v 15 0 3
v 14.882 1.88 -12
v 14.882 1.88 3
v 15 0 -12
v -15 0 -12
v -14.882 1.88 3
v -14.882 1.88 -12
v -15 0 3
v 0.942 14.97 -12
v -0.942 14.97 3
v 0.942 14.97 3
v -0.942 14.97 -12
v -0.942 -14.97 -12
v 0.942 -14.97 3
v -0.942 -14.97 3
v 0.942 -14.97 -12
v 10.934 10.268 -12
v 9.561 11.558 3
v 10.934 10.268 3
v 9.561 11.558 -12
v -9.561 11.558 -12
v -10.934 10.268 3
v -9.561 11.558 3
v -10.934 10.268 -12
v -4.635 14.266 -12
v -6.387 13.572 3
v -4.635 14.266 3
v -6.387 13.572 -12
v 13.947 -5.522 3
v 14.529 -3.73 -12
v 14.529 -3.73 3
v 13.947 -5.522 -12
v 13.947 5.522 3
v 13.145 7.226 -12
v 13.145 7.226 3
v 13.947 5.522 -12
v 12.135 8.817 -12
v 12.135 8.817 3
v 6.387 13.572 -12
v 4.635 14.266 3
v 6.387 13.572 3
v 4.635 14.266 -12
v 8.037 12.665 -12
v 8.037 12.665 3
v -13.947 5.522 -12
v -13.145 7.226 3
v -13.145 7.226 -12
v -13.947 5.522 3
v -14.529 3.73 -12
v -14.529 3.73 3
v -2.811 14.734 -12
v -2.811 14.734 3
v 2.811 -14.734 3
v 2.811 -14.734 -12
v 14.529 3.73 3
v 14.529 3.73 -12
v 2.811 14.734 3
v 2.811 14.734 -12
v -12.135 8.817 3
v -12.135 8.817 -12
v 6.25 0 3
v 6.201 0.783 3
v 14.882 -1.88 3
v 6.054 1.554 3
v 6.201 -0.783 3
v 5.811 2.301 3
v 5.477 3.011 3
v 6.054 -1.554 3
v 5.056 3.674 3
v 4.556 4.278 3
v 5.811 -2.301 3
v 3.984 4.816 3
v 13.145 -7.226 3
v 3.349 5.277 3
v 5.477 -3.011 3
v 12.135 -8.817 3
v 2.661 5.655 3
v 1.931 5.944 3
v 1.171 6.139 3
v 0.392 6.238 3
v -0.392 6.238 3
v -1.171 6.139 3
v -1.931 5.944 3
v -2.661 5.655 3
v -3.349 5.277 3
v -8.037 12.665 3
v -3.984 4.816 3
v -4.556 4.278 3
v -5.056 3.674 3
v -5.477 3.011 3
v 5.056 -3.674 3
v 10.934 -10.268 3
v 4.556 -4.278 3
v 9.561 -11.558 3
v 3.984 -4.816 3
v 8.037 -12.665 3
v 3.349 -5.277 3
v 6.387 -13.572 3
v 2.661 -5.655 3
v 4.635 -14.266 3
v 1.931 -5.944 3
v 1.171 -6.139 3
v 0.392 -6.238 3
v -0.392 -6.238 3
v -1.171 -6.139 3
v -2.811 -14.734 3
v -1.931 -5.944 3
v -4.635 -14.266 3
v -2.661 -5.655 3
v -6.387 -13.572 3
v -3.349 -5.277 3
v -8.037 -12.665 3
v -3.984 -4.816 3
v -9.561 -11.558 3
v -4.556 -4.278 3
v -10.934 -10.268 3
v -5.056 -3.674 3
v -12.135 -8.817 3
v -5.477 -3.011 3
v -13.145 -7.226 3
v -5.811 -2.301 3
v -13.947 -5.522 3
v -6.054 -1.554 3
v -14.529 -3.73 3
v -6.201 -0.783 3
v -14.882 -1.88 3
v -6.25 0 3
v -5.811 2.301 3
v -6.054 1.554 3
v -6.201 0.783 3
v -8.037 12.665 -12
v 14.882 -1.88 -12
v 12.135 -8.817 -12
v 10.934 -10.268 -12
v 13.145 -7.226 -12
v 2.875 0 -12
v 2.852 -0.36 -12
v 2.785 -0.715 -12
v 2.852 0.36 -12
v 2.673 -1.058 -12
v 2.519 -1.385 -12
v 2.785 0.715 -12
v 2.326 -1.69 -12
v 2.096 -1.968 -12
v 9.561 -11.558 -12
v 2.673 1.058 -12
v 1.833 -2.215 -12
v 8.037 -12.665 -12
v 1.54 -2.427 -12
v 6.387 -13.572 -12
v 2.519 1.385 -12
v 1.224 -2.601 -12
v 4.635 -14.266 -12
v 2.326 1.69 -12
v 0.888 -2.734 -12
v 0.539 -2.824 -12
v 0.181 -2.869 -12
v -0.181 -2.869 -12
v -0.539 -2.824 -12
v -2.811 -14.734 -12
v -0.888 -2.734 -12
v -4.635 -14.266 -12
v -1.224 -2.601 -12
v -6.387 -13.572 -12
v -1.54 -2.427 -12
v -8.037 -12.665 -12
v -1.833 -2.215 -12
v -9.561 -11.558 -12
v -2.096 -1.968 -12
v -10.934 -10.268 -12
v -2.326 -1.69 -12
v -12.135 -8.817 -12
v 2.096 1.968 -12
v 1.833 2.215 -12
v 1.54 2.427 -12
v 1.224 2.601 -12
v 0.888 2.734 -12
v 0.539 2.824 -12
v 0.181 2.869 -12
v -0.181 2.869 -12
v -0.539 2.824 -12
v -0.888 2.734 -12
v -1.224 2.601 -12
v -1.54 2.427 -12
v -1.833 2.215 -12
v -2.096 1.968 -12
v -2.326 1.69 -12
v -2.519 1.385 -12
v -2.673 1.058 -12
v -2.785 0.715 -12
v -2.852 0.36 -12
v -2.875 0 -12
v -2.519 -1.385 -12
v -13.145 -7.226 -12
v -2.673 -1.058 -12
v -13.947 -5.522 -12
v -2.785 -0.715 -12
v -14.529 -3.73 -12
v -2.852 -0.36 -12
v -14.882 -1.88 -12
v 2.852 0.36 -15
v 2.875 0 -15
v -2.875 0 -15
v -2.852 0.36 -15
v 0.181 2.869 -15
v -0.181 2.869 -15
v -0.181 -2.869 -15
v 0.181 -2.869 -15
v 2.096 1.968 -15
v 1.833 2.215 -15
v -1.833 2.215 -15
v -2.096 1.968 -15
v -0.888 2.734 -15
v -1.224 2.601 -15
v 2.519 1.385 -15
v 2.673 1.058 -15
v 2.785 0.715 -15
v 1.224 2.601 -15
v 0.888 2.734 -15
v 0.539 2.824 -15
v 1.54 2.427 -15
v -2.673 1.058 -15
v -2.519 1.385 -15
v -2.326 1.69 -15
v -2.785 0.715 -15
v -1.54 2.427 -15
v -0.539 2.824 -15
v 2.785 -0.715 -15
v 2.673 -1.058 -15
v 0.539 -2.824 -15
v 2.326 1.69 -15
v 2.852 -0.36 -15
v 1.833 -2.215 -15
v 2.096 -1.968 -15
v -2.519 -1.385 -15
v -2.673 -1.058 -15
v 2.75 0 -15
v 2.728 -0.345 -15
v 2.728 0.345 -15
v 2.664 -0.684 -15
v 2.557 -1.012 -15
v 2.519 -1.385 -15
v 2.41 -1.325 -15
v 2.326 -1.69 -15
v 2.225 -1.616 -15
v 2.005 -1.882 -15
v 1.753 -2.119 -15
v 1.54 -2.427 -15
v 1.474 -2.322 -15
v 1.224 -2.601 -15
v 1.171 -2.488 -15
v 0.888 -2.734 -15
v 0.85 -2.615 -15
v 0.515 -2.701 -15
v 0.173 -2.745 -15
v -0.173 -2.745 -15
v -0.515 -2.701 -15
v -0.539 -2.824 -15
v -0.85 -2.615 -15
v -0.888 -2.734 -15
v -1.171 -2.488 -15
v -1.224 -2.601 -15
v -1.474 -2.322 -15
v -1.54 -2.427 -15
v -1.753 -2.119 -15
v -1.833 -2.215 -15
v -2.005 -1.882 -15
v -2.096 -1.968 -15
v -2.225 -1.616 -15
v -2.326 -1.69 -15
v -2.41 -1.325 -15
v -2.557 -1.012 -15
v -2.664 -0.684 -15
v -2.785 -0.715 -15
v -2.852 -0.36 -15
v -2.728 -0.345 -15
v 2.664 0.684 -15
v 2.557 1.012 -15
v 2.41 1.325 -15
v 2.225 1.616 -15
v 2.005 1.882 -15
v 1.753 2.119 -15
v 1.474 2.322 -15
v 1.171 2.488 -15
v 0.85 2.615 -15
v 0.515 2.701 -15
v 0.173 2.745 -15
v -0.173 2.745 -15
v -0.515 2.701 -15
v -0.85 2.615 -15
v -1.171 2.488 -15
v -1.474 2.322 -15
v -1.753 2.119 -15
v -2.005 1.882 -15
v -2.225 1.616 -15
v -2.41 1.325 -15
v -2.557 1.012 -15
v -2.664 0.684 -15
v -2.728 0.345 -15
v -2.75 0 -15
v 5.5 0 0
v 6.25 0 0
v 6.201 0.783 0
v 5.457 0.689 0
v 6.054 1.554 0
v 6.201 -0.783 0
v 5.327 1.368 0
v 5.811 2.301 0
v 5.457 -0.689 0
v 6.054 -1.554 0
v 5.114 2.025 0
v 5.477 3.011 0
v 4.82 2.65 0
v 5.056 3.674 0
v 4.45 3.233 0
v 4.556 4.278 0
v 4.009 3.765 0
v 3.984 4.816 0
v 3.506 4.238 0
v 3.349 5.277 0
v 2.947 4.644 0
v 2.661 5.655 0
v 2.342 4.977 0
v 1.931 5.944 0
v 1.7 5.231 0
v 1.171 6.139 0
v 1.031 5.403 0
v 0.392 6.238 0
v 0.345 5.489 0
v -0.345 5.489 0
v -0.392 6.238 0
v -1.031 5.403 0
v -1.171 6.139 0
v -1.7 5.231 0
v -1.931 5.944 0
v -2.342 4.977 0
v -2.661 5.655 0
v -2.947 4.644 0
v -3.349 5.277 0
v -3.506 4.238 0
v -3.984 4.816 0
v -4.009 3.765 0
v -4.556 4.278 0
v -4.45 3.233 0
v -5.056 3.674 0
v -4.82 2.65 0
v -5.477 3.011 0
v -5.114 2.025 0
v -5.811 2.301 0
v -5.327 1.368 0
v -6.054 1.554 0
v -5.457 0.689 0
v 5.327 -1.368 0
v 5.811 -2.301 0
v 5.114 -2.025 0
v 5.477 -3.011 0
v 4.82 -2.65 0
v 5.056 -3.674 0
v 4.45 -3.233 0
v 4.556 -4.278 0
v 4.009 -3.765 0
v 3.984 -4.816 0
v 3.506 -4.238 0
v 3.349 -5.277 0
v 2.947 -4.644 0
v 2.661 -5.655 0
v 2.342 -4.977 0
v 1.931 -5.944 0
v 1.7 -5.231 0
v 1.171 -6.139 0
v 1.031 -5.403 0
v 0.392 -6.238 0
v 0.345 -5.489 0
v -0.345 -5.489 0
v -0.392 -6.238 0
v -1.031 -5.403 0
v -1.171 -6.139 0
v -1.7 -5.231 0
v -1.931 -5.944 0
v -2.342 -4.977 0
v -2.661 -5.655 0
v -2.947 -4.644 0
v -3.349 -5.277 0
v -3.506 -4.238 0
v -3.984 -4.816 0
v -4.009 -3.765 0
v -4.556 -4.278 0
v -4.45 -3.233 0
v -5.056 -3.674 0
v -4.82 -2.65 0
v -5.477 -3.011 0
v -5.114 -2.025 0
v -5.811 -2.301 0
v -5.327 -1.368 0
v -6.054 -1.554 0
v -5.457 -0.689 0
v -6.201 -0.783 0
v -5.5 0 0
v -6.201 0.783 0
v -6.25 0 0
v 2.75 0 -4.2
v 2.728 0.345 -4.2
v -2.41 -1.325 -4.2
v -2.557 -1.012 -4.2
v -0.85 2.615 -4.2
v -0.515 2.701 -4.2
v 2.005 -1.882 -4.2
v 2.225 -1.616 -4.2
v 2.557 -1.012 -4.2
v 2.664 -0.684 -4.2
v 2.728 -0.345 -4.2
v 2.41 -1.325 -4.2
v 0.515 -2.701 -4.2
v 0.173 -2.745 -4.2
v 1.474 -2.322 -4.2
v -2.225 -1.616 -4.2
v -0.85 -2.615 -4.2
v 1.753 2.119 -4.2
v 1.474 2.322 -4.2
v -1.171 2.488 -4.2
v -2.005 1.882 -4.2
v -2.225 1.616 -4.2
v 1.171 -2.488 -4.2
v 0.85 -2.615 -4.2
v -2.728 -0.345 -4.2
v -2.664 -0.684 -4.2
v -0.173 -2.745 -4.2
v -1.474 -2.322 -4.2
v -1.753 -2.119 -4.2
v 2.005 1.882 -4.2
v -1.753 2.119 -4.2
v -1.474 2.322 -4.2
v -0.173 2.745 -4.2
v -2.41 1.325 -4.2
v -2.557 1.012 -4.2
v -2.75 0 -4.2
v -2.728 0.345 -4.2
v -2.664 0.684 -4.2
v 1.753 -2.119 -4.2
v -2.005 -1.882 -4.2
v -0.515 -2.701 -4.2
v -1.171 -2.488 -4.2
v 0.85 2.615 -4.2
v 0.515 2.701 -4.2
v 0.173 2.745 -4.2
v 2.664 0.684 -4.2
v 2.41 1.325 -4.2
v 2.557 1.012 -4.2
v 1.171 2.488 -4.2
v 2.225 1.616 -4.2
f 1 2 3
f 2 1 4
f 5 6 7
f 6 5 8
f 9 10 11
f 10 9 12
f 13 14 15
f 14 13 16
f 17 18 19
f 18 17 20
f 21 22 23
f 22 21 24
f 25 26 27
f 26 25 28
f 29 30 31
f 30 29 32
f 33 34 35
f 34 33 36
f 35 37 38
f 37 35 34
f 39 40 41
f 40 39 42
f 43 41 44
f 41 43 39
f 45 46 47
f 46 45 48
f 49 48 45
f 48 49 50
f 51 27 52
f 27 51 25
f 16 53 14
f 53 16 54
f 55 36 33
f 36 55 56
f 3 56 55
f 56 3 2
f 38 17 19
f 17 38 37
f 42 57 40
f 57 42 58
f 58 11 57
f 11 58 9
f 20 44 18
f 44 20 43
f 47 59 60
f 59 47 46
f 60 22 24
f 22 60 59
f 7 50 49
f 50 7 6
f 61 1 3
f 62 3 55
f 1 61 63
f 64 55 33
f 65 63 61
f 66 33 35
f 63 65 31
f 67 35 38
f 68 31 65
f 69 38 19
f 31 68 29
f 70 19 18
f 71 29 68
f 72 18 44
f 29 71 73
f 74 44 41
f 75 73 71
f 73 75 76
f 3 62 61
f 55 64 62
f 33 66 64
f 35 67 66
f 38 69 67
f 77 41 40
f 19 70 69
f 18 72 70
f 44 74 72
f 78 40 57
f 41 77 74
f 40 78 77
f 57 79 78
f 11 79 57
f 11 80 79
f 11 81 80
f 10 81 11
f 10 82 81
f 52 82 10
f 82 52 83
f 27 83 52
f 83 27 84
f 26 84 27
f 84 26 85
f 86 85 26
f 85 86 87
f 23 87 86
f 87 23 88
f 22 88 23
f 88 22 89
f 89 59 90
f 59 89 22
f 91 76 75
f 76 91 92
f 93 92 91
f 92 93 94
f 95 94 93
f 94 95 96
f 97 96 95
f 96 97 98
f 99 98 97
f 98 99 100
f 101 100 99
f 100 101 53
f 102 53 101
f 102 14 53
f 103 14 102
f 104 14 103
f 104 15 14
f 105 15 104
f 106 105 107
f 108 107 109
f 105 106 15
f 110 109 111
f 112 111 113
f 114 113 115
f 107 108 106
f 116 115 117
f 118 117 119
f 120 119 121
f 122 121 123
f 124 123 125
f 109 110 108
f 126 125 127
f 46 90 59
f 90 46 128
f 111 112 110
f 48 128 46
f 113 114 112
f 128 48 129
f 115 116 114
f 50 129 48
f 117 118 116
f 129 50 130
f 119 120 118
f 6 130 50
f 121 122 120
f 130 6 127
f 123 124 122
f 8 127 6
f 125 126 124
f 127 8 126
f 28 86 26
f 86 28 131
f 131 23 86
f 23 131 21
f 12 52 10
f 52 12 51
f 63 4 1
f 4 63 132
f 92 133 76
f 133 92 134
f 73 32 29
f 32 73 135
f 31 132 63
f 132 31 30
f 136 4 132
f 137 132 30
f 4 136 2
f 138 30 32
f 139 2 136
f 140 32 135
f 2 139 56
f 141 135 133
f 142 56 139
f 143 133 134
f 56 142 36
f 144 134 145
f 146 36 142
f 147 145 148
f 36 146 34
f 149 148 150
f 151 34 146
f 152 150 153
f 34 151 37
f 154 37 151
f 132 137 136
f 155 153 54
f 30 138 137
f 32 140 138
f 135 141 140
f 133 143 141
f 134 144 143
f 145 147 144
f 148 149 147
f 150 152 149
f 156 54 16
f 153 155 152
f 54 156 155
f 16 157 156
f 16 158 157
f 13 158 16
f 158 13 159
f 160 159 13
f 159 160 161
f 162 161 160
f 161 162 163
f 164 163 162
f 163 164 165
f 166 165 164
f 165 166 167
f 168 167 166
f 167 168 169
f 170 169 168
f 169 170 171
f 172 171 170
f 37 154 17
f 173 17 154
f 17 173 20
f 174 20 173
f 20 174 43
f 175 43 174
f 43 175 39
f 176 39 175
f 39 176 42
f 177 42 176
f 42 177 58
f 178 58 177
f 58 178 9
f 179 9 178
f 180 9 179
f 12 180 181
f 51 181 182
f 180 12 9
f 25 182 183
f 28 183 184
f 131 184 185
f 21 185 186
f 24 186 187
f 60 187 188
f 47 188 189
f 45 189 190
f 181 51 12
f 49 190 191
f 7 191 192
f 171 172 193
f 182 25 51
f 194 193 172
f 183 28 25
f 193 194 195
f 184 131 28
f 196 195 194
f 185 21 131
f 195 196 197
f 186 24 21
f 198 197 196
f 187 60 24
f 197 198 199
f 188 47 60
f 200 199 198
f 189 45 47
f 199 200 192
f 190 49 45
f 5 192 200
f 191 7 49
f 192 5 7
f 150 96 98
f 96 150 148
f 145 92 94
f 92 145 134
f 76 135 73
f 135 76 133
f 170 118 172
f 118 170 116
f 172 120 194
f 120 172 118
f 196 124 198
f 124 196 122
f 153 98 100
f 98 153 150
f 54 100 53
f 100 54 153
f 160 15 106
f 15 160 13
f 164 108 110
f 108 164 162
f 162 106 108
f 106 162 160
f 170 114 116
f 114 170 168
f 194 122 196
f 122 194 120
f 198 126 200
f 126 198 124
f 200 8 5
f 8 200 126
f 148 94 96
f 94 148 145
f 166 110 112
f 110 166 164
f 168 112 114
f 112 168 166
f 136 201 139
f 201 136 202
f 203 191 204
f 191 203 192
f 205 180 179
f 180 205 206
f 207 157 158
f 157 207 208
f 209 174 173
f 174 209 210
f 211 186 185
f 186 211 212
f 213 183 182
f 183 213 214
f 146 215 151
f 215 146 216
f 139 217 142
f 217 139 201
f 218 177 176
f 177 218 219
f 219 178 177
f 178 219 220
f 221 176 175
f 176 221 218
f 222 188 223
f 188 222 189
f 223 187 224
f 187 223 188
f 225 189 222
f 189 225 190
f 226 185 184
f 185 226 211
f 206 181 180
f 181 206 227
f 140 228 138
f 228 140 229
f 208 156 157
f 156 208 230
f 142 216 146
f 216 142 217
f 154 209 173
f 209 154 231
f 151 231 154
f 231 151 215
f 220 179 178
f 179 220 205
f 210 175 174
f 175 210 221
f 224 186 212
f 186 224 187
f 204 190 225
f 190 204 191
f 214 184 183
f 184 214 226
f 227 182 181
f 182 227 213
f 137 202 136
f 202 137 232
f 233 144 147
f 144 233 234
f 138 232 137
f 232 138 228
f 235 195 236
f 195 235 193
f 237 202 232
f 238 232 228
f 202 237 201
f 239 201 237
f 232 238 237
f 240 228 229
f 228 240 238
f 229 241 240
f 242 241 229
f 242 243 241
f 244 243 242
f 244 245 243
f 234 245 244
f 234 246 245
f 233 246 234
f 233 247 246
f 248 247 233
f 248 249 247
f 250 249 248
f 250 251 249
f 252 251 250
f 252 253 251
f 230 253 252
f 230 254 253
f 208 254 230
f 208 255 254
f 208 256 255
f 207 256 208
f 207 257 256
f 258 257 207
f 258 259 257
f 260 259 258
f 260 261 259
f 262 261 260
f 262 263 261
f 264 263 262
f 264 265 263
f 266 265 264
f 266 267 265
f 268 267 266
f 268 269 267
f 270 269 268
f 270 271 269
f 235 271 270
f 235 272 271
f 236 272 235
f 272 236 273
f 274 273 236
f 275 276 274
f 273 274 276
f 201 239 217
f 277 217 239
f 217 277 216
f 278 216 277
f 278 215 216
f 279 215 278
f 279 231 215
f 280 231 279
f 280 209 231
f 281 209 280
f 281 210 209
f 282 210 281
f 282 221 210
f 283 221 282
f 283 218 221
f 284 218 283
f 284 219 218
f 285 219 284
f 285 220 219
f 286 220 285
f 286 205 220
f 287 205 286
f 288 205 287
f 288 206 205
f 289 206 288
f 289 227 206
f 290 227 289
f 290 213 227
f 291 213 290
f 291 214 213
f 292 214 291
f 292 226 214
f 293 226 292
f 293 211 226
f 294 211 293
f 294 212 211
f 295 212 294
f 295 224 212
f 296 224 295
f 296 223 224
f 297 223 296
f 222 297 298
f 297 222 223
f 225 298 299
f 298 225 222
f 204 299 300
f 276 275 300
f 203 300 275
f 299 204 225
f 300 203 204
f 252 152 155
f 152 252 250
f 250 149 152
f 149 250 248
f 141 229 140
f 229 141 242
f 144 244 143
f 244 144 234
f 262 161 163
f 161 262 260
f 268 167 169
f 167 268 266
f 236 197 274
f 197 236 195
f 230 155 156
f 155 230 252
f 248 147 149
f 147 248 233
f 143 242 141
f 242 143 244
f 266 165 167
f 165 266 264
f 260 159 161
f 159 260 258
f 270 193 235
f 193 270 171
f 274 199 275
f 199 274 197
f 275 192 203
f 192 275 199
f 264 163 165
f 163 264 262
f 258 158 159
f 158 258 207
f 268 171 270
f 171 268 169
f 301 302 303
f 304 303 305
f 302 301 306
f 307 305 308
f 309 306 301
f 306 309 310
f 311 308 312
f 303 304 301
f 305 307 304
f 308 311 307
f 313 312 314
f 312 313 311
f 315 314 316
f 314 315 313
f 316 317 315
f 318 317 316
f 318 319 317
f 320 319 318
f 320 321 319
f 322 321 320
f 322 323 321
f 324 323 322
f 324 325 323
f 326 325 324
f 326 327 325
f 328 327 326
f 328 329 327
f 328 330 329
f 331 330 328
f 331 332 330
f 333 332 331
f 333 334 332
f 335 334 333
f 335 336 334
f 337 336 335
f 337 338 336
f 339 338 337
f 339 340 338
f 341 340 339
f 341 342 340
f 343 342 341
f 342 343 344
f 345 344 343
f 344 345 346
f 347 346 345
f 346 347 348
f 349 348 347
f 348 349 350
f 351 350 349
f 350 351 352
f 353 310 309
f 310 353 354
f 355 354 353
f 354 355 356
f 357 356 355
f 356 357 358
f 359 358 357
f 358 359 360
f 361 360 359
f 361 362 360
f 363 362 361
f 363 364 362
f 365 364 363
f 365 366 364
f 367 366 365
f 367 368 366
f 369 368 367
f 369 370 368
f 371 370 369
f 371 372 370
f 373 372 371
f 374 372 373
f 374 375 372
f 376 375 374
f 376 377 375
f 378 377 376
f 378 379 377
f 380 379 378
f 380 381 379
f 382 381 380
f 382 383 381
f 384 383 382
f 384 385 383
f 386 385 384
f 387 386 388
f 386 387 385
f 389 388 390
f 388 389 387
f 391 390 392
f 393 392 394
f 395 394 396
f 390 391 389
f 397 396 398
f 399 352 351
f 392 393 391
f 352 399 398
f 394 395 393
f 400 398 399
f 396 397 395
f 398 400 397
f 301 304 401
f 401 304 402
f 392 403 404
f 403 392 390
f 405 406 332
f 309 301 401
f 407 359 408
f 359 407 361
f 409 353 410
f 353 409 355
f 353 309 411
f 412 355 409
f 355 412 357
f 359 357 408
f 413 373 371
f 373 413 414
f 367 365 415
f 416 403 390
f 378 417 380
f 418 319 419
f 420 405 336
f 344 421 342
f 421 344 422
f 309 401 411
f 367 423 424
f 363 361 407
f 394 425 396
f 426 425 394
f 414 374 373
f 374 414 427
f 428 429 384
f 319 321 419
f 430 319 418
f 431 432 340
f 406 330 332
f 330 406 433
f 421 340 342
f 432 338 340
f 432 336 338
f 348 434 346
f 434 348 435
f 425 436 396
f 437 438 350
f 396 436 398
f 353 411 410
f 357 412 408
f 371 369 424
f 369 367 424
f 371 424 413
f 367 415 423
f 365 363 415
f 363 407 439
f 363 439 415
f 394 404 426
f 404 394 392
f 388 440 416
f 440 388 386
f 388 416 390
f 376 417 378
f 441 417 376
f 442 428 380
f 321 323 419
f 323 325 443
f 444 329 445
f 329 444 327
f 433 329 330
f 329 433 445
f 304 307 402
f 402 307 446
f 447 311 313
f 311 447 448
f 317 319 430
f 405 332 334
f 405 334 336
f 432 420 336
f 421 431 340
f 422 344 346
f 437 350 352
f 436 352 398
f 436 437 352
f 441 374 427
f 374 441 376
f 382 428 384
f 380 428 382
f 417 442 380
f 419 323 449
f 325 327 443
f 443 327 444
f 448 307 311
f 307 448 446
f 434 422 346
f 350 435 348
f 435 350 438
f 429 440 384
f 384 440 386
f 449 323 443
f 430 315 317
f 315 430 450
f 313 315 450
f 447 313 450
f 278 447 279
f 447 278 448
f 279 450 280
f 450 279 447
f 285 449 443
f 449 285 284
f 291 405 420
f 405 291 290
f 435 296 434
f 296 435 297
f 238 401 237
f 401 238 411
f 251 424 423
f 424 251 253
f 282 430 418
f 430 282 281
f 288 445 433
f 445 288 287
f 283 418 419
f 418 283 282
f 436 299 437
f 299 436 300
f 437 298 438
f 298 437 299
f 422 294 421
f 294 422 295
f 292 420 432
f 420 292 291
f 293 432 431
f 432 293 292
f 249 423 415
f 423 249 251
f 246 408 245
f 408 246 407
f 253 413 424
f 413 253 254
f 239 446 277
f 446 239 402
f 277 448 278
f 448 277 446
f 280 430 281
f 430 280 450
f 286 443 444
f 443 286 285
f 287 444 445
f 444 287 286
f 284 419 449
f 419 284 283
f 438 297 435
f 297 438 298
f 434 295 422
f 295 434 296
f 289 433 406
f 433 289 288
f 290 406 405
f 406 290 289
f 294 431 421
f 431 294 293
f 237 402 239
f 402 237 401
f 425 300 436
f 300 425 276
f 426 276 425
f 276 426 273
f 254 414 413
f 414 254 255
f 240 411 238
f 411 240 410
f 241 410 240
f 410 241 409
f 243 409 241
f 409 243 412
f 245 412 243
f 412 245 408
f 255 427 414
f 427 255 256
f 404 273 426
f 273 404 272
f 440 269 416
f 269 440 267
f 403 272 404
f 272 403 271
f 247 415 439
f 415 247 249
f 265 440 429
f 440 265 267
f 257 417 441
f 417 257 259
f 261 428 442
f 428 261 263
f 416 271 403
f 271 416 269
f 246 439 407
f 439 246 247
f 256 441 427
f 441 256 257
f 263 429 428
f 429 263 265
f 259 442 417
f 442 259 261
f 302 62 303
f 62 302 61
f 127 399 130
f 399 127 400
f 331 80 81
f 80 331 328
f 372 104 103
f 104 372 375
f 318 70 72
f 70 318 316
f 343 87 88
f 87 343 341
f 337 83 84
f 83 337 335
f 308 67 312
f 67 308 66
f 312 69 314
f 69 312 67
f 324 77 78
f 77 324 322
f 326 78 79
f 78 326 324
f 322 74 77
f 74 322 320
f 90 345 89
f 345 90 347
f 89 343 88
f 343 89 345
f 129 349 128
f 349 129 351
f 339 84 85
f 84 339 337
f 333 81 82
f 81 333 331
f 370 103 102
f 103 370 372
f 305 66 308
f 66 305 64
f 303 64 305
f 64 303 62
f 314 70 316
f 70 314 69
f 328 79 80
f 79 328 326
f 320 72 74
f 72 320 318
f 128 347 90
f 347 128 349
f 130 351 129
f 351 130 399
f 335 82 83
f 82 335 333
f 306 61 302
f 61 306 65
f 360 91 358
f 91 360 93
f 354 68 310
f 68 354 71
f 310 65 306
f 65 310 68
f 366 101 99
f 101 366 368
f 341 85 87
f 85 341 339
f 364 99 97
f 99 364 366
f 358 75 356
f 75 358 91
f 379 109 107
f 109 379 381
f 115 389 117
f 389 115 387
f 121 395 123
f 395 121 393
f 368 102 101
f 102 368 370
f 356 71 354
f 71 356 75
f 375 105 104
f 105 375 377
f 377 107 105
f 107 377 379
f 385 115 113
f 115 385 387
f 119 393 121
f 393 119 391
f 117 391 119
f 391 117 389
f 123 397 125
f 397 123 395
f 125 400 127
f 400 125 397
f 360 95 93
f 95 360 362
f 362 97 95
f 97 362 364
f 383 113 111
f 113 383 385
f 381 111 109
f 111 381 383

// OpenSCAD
$fn = 50;


difference() {
	union() {
		translate(v = [0, 0, -12.0000000000]) {
			cylinder(h = 15, r = 15.0000000000);
		}
		#translate(v = [0, 0, -15.0000000000]) {
			cylinder(h = 15, r = 2.8750000000);
		}
	}
	union() {
		translate(v = [0, 0, 0]) {
			rotate(a = [0, 0, 0]) {
				difference() {
					union() {
						translate(v = [0, 0, -15.0000000000]) {
							cylinder(h = 15, r = 2.2500000000);
						}
						translate(v = [0, 0, -4.2000000000]) {
							cylinder(h = 4.2000000000, r1 = 2.7500000000, r2 = 5.5000000000);
						}
						translate(v = [0, 0, -15.0000000000]) {
							cylinder(h = 15, r = 2.7500000000);
						}
						translate(v = [0, 0, -15.0000000000]) {
							cylinder(h = 15, r = 2.2500000000);
						}
					}
					union();
				}
			}
		}
		#cylinder(h = 3, r = 6.2500000000);
	}
}
